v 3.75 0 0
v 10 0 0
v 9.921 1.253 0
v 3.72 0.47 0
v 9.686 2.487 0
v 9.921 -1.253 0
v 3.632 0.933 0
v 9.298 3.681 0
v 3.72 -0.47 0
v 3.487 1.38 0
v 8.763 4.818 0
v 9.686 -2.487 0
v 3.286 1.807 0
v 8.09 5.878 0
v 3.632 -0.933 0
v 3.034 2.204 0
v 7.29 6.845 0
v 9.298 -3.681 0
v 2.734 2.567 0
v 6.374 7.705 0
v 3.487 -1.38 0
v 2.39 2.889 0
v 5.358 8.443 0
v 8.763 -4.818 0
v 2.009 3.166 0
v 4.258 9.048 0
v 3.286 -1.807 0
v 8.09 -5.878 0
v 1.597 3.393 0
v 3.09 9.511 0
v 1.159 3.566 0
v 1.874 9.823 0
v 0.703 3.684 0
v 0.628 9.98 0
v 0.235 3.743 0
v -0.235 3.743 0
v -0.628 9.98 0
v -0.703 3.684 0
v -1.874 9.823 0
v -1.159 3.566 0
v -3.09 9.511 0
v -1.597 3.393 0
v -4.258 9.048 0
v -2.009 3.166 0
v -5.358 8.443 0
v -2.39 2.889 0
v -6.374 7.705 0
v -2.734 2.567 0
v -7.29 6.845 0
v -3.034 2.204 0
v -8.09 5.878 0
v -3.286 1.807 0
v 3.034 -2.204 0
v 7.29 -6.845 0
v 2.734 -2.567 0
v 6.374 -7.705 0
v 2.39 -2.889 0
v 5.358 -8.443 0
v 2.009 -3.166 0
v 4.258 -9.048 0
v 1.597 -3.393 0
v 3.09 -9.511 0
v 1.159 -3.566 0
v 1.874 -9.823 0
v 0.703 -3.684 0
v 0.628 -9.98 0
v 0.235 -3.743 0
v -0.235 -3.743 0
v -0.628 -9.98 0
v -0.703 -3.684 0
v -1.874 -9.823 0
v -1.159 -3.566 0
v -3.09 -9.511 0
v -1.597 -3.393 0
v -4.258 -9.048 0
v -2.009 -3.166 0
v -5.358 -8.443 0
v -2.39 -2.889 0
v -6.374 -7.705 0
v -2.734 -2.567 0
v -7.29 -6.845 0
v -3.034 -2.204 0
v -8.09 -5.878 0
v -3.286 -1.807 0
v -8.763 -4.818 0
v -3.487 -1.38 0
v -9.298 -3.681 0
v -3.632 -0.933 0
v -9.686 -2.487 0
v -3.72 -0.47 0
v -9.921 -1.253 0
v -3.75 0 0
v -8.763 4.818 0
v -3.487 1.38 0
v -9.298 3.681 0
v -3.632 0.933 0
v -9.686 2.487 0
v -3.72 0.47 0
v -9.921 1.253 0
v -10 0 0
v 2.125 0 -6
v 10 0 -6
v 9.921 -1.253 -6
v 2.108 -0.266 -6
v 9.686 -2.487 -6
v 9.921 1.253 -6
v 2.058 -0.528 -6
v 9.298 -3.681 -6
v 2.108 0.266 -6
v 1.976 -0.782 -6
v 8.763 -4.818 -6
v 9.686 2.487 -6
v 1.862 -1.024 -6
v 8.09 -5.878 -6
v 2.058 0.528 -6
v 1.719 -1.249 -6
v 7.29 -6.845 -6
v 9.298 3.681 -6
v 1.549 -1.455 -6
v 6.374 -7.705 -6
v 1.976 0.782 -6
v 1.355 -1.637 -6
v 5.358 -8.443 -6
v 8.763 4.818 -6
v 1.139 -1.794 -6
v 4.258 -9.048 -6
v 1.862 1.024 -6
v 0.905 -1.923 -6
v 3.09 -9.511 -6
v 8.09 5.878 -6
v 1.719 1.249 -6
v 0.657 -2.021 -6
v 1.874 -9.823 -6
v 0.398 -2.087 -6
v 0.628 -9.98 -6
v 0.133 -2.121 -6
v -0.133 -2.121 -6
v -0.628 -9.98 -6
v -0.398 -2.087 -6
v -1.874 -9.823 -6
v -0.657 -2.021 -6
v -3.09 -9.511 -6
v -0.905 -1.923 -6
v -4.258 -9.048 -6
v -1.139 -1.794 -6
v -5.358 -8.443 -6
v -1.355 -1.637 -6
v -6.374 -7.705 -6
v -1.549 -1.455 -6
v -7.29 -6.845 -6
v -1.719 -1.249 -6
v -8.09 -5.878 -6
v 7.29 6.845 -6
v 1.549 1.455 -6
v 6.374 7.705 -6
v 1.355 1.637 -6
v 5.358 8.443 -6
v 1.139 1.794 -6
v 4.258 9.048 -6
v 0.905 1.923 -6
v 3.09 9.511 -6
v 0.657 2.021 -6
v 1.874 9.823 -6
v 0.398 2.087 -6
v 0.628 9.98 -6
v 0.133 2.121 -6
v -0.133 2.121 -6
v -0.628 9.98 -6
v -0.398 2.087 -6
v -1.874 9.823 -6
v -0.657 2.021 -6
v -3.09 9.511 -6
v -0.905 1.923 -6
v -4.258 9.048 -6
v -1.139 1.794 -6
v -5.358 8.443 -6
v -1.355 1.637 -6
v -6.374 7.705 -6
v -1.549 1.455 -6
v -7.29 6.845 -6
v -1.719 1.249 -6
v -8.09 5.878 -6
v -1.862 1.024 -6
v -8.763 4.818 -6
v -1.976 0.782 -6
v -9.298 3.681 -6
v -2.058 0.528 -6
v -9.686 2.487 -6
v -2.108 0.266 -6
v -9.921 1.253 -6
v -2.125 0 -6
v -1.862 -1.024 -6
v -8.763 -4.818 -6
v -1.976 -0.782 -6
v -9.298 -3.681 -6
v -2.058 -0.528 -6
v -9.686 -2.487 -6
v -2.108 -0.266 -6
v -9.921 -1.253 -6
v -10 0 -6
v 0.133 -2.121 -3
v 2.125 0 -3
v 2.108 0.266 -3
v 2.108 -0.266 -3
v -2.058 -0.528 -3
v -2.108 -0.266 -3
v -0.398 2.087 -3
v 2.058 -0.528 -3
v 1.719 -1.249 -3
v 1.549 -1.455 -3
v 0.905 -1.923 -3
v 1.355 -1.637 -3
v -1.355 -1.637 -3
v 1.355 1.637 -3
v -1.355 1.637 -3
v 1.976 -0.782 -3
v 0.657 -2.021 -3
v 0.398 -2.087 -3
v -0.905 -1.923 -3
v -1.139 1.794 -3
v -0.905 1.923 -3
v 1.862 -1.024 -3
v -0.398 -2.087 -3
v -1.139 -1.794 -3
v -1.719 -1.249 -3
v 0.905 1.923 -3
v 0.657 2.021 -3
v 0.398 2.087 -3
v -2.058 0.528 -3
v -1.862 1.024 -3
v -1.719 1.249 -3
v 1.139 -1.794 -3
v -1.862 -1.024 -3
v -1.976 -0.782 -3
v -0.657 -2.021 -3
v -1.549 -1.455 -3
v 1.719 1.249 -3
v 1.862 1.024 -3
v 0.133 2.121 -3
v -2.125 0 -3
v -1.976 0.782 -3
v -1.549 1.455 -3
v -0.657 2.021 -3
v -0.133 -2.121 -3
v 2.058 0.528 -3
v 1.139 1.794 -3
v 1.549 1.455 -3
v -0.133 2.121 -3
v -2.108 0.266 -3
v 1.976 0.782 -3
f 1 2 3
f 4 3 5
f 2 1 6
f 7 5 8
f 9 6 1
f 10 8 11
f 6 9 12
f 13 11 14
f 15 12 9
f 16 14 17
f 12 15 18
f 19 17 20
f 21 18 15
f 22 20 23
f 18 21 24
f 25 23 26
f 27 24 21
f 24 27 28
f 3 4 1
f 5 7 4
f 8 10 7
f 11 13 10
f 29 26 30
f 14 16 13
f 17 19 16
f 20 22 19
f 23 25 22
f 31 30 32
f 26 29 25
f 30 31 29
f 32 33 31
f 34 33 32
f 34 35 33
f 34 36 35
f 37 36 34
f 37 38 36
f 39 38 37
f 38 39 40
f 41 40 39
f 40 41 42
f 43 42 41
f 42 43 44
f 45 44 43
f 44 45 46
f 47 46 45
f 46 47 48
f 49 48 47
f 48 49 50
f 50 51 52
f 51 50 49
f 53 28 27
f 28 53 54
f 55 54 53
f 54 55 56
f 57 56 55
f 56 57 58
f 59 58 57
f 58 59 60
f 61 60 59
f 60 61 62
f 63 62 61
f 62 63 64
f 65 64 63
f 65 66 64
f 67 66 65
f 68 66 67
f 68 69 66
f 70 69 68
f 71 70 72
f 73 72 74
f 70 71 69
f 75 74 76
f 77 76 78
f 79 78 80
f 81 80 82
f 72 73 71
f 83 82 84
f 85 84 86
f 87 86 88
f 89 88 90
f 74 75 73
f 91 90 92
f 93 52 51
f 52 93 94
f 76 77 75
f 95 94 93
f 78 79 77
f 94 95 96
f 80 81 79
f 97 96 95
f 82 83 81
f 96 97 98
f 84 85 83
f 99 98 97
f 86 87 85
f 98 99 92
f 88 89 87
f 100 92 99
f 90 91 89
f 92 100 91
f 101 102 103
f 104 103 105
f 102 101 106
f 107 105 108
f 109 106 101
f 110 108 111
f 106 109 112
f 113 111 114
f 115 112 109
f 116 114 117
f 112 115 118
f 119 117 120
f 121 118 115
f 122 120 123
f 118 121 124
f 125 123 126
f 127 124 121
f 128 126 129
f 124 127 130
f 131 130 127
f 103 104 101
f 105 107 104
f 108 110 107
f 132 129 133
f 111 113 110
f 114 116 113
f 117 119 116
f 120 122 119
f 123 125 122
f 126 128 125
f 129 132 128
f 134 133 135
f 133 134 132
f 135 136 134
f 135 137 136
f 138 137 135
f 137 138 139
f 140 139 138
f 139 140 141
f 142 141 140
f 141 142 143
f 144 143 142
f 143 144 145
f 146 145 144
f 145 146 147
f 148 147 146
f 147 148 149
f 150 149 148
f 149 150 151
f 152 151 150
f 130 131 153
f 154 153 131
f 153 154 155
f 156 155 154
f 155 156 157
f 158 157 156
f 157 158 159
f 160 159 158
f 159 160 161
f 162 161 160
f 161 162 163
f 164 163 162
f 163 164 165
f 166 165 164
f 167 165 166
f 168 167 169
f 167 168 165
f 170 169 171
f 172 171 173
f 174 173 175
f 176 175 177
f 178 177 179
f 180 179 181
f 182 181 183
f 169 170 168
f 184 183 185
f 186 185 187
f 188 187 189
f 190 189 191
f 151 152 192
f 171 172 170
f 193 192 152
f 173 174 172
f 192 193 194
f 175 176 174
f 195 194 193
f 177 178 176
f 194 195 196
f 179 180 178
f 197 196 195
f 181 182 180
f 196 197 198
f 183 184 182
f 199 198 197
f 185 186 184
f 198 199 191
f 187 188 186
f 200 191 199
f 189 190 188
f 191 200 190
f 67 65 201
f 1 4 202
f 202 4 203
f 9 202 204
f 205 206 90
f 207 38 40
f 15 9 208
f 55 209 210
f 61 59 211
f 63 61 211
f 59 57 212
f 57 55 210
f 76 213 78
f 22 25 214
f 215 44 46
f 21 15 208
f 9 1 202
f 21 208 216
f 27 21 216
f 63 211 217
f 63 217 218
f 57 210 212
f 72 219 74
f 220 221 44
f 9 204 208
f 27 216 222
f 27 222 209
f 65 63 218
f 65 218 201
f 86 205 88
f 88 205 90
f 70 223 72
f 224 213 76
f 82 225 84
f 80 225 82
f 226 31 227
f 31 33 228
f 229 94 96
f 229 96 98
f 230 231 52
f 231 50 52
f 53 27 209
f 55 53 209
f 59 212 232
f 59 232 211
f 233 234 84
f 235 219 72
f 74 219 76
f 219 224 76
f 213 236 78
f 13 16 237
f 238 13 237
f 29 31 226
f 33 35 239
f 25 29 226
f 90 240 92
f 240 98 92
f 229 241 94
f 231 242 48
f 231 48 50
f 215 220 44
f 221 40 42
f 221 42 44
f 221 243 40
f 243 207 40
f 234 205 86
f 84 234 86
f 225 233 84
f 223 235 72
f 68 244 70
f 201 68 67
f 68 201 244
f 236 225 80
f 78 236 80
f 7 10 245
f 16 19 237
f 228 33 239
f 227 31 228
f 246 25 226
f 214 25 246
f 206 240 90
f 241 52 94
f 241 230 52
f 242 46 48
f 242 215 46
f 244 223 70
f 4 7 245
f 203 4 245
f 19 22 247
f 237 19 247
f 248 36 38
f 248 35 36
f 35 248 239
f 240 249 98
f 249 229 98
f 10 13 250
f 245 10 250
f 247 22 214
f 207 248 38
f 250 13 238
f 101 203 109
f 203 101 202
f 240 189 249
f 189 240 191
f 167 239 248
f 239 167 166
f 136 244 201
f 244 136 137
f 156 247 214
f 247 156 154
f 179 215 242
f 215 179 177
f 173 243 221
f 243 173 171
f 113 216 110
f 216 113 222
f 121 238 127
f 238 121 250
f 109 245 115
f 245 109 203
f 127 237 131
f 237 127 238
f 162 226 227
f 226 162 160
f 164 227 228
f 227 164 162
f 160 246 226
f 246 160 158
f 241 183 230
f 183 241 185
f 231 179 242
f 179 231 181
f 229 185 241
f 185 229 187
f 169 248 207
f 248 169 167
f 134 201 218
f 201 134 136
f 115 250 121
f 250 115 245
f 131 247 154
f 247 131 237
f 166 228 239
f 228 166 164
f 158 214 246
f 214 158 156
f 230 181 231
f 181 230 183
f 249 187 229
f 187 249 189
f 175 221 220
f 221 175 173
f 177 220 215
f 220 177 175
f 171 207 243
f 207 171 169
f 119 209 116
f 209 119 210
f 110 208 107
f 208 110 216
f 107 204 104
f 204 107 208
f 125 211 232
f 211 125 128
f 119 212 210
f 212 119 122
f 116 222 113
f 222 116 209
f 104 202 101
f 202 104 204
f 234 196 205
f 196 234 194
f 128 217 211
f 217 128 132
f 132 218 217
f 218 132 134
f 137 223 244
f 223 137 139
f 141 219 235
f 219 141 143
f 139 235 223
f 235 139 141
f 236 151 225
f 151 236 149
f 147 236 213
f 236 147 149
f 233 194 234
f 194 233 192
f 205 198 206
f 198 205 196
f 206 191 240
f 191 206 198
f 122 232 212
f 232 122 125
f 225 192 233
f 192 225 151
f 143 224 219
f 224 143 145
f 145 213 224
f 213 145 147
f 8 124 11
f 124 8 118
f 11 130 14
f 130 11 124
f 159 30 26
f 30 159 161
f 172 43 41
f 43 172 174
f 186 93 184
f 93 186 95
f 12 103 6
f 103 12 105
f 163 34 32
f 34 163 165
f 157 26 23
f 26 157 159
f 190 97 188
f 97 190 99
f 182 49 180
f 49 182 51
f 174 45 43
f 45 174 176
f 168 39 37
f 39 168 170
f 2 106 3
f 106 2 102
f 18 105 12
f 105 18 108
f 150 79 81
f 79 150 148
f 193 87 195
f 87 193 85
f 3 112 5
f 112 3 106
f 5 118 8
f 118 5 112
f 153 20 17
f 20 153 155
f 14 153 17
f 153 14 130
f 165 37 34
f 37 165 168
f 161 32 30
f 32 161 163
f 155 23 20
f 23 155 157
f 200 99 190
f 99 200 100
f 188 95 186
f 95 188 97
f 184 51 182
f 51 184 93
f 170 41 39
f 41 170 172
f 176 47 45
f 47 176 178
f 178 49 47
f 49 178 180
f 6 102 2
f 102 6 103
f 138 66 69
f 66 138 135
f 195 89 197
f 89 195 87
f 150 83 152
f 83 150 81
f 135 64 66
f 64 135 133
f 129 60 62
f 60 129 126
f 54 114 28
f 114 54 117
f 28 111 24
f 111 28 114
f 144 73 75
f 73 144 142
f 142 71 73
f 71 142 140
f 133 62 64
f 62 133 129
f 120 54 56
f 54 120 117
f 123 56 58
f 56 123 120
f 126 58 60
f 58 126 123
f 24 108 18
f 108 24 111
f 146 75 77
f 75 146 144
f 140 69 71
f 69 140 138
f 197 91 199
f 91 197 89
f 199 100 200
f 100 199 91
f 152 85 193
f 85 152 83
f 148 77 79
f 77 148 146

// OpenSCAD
$fn = 50;


difference() {
	union() {
		translate(v = [0, 0, -6.0000000000]) {
			cylinder(h = 6, r = 10.0000000000);
		}
		cylinder(h = 0, r = 13.0000000000);
	}
	union() {
		translate(v = [0, 0, 0]) {
			rotate(a = [0, 0, 0]) {
				difference() {
					union() {
						#translate(v = [0, 0, -6.0000000000]) {
							cylinder(h = 6, r = 2.0000000000);
						}
						#translate(v = [0, 0, -3]) {
							cylinder(h = 3, r = 10.0000000000, r1 = 2.1250000000, r2 = 3.7500000000);
						}
						#translate(v = [0, 0, -6.0000000000]) {
							cylinder(h = 6, r = 2.1250000000);
						}
						#translate(v = [0, 0, -6.0000000000]) {
							cylinder(h = 6, r = 2.0000000000);
						}
					}
					union();
				}
			}
		}
	}
}
